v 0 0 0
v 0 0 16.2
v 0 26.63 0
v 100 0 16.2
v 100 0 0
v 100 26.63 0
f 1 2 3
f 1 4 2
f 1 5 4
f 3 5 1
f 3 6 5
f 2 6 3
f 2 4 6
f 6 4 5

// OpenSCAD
$fn = 72;

/*
 * This part can be used to model an angle constrained by an obstruction.
 *
 * I use it to model ramps which fit halfway under a sliding door to allow
 * a robotic vacuum to drive into rooms with a significant height difference.
 *
 *        / |.       | OBSTRUCTION |
 *        . |    .   |_____________|
 * HEIGHT . |        .              \
 *        . | angle(t)   .          . DISTANCE_OBSTRUCTION_Y
 *        \ |________________.______/
 *          \......../ DISTANCE_OBSTRUCTION_X
 */

HEIGHT = 16.2;
DISTANCE_OBSTRUCTION_X = 12;
DISTANCE_OBSTRUCTION_Y = 8.9;

ANGLE_WIDTH = 100;

function constraint_angle(a, b) = 90 - asin(a / (sqrt(pow(a, 2) + pow(b,2))));

module angle(t) {
    resize([0, HEIGHT, 0], auto=true) {
        polygon([
            [0, 0],
            [0, cos(t)],
            [sin(t), 0]
        ]);
    }
}

rotate([90, 0, 90]) {
    linear_extrude(height = ANGLE_WIDTH) {
        angle(constraint_angle(HEIGHT - DISTANCE_OBSTRUCTION_Y, DISTANCE_OBSTRUCTION_X));
    }
}
